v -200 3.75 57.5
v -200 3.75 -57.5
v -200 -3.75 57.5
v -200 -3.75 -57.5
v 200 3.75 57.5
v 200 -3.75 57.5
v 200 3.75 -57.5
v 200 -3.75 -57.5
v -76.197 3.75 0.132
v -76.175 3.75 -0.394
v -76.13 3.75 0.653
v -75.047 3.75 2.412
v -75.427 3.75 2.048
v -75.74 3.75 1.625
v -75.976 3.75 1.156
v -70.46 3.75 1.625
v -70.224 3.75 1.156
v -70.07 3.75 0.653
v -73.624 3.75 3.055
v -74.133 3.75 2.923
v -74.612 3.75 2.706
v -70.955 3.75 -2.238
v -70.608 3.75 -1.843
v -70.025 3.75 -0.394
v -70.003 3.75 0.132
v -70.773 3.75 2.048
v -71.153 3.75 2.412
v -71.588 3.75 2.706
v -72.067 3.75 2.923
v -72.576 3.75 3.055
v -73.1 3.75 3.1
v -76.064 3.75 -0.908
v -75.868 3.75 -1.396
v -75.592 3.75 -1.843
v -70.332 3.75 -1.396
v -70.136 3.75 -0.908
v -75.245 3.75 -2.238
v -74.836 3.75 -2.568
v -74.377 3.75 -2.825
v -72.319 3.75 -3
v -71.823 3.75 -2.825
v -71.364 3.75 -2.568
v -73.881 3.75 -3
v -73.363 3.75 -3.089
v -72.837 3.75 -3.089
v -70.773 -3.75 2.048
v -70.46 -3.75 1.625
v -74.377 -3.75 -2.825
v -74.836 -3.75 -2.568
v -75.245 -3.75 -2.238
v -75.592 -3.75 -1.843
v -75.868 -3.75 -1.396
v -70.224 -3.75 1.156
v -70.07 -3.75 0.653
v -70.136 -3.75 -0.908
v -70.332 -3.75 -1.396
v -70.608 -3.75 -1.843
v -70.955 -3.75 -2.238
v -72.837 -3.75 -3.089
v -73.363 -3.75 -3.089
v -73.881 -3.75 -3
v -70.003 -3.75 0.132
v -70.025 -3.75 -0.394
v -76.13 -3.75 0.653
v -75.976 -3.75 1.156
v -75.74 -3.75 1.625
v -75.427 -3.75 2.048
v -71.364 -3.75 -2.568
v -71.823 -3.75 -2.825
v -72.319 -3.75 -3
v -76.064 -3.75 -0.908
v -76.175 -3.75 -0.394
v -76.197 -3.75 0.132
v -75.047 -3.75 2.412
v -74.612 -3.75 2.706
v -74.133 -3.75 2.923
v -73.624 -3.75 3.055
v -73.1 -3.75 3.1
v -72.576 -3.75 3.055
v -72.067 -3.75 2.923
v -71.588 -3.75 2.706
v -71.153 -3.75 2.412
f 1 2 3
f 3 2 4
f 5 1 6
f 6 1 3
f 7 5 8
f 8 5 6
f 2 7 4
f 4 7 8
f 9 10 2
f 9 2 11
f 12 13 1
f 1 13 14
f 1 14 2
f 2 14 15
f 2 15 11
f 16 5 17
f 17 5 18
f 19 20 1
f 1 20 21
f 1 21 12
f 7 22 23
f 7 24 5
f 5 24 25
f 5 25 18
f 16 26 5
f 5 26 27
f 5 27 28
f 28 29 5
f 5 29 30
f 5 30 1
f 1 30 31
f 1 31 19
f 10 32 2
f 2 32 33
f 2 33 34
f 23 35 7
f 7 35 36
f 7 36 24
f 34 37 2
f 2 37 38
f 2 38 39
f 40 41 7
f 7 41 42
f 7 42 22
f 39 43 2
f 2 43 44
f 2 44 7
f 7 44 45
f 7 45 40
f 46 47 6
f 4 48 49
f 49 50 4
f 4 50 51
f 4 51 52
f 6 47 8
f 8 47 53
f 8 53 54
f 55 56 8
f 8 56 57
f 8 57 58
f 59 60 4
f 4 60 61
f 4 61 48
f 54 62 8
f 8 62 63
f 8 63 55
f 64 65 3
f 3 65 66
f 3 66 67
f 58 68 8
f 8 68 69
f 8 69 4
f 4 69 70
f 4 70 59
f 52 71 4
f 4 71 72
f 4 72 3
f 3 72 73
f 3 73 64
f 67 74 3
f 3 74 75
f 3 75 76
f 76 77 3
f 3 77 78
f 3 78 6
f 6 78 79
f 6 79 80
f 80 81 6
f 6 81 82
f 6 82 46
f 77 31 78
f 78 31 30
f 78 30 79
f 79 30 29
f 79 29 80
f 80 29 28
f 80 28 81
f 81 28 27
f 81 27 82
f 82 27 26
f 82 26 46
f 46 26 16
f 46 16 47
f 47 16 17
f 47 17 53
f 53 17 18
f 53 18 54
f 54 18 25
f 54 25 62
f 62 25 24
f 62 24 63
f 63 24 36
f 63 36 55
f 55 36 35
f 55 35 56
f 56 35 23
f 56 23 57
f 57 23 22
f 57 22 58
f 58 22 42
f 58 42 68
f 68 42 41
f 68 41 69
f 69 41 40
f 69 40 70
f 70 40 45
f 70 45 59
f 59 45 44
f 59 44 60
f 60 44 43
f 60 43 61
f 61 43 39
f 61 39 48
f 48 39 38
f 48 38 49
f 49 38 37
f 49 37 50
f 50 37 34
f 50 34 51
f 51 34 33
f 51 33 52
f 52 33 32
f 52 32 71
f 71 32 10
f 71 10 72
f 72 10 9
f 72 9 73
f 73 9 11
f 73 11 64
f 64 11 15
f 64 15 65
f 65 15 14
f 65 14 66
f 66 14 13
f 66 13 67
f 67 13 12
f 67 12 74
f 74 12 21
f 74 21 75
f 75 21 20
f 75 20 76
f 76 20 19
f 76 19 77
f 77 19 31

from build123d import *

# Parameters (mm, degrees)
SKETCH1_W           = 40
SKETCH1_H           = 11.5
BOSS_EXTRUDE1_DEPTH = 0.375
SCALE1_SCALE        = 10
SKETCH2_R           = 3.1
CUT_EXTRUDE1_DEPTH  = 209.23664423


with BuildPart() as part:
    # Sketch1 → Boss-Extrude1 (new, symmetric)
    with BuildSketch(Plane(origin=(0, 0, 0), x_dir=(1, 0, 0), z_dir=(0, 1, 0))):
        Rectangle(SKETCH1_W, SKETCH1_H)
    extrude(amount=BOSS_EXTRUDE1_DEPTH, both=True)


with BuildPart() as part_1:
    # Scale1: scaled about (0, 0, 0)
    add(part.part.scale(SCALE1_SCALE))

    # Sketch2 → Cut-Extrude1 (cut, through all)
    with BuildSketch(Plane(origin=(0, 3.75, 0), x_dir=(1, 0, 0), z_dir=(0, 1, 0))):
        with Locations(Location((-73.1, 0, 0), (0, 0, 270))):
            Circle(SKETCH2_R)
    extrude(amount=-CUT_EXTRUDE1_DEPTH, mode=Mode.SUBTRACT)


solid = part_1.part
